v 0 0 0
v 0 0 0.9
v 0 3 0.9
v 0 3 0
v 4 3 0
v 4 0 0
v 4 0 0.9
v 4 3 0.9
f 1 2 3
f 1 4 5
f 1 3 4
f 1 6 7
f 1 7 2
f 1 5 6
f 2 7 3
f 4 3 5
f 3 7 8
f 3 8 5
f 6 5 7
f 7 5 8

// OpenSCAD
/* Warning, this is a very basic generator with a lot of approximation 
input data : [VQFN, NSA, 4x3x0.9mm, 20, , A, C04-01232A]
generated by com.zoubworld.electronics.cad.model3d.Basic
Date : Sun Feb 15 10:50:49 CET 2026
*/

//body
color("black")
translate([0,0,0])
cube([4.0,3.0,0.9], center=false);
